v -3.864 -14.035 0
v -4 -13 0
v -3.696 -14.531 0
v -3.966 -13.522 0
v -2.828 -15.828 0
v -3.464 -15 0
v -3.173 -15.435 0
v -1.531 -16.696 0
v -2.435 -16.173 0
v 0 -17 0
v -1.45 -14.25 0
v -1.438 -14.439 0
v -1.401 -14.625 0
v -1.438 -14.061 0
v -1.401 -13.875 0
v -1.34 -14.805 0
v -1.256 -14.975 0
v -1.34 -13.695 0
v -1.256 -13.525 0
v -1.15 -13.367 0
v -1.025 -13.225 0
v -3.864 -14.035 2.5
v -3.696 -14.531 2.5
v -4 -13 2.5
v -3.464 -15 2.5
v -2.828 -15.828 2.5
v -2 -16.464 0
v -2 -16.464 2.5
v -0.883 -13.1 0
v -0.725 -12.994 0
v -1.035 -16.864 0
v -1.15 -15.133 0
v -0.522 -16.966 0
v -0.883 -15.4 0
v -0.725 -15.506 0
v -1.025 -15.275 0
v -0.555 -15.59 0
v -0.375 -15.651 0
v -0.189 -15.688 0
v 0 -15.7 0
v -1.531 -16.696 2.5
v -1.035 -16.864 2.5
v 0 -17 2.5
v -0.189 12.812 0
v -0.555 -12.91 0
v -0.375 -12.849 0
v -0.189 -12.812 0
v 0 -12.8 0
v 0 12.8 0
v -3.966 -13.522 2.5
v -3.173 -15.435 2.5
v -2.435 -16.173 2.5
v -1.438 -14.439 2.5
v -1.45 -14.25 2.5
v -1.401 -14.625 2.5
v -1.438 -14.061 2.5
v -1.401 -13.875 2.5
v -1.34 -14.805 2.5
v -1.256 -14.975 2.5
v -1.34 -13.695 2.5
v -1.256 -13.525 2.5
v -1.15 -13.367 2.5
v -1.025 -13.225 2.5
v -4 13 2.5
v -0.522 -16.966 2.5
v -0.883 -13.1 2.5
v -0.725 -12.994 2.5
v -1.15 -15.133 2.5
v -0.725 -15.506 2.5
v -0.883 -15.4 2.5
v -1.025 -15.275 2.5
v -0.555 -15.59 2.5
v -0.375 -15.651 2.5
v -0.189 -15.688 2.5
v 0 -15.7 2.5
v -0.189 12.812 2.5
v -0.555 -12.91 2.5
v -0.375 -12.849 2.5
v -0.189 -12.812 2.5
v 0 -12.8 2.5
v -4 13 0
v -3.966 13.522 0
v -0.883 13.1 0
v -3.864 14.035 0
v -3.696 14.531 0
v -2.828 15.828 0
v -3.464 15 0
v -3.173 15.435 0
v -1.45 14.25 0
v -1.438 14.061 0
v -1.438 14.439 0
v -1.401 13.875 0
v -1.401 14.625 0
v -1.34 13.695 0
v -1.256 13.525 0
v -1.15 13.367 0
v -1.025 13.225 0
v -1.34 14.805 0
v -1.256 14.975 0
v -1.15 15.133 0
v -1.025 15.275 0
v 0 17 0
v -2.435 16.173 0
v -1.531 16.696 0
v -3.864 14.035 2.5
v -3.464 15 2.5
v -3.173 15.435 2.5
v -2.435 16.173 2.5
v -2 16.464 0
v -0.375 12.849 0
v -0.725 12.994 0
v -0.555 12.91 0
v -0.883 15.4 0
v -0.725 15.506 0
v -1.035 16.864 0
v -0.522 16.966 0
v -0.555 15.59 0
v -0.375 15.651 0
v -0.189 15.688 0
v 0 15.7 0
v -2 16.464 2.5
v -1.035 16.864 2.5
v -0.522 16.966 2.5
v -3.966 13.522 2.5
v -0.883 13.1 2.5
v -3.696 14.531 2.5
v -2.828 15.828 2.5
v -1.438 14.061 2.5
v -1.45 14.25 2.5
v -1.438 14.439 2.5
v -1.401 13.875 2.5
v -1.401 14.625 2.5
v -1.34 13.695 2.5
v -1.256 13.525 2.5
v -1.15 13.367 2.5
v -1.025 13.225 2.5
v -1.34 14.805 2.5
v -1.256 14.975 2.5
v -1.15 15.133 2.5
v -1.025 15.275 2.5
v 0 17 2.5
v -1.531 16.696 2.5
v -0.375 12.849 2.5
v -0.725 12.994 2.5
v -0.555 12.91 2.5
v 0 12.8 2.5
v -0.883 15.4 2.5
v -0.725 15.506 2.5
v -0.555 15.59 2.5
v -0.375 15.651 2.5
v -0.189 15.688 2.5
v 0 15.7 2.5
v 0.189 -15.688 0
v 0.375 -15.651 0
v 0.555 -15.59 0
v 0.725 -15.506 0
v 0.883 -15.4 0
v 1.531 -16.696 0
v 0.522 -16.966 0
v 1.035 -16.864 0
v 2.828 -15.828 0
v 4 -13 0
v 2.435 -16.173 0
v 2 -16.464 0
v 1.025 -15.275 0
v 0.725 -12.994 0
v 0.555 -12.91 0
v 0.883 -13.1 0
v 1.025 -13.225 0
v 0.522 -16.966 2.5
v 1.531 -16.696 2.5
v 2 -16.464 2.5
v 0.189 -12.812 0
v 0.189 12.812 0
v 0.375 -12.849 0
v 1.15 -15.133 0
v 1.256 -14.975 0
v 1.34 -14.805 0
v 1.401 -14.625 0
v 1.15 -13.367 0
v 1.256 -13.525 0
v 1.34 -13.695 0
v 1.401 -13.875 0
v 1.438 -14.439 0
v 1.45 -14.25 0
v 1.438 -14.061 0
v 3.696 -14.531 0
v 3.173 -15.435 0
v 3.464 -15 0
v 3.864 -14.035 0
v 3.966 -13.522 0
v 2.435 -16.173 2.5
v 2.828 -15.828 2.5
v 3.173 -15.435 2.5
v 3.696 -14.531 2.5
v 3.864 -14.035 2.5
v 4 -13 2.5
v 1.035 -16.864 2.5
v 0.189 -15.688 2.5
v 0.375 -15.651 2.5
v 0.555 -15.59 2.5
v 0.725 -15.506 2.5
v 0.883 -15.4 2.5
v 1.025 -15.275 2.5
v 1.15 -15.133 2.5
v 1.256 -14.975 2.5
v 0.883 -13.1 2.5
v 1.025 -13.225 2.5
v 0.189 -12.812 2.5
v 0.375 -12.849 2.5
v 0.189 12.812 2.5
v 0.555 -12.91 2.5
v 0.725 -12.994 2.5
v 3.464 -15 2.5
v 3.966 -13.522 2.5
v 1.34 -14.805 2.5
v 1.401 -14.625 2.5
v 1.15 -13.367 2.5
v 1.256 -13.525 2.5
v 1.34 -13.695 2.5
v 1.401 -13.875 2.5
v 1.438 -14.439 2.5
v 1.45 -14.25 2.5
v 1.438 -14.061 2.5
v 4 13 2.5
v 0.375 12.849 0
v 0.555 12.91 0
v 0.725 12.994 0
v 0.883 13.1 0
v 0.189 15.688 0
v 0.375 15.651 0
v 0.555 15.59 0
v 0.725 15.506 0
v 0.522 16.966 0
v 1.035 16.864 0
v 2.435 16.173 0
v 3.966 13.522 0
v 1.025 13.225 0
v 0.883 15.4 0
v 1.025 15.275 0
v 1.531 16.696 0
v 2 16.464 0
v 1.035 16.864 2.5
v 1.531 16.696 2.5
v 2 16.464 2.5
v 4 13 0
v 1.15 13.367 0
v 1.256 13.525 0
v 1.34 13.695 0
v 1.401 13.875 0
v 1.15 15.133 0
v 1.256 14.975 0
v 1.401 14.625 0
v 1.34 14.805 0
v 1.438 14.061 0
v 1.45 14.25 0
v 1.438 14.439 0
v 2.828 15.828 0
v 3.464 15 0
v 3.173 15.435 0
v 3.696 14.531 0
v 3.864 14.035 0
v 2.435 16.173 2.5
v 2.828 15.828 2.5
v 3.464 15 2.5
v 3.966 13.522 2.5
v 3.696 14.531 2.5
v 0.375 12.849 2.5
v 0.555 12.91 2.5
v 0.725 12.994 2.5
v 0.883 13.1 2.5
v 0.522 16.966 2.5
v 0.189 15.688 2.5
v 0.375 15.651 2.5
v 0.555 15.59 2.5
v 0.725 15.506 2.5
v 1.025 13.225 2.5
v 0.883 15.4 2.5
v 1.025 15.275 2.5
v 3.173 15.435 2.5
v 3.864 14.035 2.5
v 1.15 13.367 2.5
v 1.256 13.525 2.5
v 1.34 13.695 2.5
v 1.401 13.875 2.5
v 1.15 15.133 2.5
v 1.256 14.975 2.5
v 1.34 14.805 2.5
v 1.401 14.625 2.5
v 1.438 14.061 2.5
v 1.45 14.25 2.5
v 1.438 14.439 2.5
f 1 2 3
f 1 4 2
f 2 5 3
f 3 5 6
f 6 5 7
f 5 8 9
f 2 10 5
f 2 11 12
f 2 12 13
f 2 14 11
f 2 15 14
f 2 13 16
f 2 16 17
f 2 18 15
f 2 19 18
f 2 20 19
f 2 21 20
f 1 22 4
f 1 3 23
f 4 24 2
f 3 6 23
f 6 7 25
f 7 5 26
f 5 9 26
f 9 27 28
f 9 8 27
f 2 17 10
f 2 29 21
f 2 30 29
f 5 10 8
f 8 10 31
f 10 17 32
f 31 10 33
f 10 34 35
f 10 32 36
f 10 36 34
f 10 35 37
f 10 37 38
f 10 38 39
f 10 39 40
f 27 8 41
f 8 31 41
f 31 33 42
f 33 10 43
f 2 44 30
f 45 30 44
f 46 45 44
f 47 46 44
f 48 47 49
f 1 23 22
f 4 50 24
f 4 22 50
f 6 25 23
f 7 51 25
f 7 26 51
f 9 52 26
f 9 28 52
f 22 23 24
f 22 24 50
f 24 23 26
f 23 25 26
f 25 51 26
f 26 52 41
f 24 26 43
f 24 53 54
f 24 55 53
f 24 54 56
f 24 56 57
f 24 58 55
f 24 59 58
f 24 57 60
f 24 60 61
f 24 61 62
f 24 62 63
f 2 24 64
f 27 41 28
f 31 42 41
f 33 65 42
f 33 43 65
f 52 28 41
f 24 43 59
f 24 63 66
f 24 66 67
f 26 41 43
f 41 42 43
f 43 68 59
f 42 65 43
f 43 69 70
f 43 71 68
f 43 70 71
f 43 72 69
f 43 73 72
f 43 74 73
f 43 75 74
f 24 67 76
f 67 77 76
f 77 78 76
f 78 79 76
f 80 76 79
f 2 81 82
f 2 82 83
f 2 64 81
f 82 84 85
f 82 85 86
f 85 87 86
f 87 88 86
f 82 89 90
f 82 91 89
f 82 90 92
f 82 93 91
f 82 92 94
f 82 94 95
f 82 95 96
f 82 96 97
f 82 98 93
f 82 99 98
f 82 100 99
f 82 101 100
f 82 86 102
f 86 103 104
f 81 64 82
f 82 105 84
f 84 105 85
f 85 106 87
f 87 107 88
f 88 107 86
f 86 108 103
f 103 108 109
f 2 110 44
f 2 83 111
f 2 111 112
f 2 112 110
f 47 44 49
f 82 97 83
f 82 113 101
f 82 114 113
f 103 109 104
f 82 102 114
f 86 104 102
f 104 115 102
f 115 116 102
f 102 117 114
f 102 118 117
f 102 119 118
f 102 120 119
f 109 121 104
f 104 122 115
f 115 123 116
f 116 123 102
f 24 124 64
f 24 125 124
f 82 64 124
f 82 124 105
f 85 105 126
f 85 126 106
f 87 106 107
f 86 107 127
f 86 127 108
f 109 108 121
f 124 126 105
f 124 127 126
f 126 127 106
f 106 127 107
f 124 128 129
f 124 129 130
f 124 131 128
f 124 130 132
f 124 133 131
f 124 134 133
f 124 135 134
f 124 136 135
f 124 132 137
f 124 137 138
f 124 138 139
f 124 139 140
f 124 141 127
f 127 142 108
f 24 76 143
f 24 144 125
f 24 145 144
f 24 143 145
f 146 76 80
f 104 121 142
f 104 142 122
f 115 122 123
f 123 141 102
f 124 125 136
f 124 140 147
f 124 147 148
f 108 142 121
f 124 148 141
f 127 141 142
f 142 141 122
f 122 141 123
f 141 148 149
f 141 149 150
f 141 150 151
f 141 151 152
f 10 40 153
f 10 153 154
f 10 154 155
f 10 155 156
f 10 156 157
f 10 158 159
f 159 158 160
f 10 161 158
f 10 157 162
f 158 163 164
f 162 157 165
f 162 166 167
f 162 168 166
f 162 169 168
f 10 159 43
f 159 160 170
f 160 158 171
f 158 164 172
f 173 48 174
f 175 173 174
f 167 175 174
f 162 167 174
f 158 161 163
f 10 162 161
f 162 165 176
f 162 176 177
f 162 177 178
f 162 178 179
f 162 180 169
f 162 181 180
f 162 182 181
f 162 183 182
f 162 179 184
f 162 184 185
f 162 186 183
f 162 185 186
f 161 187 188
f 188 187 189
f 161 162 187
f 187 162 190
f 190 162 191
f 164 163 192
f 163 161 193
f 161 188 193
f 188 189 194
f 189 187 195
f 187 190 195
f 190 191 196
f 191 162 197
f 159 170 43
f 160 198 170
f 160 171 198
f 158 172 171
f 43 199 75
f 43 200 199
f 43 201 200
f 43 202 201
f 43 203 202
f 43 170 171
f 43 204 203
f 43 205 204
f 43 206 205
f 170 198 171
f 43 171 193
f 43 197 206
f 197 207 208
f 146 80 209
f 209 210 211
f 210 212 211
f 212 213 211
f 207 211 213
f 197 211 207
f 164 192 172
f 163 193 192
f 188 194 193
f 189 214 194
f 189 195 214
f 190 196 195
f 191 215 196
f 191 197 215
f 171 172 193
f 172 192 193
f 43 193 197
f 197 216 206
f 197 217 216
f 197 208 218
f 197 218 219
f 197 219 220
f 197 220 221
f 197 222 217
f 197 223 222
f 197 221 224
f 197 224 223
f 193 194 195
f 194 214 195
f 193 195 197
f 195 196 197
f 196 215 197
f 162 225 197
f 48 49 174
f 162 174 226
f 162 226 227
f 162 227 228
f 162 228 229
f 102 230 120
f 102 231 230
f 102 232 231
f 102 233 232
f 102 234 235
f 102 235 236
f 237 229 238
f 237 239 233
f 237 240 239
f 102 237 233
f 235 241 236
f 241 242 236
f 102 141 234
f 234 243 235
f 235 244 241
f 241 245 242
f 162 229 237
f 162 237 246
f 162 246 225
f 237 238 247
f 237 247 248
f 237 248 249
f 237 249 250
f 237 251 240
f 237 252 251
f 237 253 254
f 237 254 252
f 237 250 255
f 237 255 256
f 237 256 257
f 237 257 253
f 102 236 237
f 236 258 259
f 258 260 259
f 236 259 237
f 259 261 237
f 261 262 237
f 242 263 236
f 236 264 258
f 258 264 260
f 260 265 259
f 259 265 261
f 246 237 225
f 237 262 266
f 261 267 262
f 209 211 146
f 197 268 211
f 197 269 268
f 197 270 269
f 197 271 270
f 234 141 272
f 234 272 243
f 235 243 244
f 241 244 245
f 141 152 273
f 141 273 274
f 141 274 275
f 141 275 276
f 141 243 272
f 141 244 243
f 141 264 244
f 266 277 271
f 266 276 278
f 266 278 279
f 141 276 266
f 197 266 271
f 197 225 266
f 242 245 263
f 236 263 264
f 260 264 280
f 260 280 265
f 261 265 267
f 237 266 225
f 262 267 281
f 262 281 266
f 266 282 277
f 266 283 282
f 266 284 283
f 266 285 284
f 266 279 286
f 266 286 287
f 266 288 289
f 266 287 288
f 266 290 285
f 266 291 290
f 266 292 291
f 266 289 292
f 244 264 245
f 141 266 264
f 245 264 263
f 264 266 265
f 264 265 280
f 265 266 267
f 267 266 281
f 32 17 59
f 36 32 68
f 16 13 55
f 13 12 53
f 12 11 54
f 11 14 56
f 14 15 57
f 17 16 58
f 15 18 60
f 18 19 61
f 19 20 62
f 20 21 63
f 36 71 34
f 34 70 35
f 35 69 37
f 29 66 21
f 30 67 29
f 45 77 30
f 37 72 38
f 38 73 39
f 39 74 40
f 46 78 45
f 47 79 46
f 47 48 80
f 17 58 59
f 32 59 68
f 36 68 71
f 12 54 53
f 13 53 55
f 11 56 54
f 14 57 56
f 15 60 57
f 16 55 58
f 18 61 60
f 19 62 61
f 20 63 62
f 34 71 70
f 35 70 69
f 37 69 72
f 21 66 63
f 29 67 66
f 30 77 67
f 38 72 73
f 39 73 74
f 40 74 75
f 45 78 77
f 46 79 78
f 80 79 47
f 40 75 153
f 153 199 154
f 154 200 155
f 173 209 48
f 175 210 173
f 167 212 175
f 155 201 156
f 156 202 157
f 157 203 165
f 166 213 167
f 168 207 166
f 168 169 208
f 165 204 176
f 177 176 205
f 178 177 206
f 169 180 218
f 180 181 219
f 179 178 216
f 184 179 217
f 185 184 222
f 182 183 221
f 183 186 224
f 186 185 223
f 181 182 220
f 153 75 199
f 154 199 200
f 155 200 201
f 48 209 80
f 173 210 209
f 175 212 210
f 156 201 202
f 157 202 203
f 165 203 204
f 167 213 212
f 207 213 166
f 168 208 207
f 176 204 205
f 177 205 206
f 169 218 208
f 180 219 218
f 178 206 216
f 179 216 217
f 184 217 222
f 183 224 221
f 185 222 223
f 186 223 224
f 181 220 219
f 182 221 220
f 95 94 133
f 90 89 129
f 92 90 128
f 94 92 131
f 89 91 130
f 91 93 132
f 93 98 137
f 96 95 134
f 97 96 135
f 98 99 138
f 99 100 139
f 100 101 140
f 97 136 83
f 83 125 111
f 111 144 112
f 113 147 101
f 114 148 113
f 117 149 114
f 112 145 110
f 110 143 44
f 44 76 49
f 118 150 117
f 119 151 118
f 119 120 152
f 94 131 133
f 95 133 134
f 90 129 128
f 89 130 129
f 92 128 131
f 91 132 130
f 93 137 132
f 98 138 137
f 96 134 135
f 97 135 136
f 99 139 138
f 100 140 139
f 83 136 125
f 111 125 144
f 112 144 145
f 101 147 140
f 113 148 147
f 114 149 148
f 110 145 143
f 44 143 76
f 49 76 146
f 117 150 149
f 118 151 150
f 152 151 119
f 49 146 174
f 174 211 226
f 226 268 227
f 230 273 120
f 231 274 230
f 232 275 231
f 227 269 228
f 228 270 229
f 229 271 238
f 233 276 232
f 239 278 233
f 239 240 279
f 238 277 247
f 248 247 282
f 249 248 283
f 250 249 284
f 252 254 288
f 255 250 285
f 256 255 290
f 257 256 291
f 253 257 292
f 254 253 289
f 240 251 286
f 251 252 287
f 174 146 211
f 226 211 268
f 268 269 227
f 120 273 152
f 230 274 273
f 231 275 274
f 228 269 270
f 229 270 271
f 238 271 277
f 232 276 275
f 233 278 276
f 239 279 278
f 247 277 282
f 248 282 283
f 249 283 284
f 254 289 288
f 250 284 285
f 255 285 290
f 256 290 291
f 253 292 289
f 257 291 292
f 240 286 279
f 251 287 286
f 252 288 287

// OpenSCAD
// =============================================================================
// V6 servo retention strap — screws over the servo tail (print 4+ per robot).
// =============================================================================
// plate, 2x Ø2.9 (M2.5 self-tap clearance) holes at ±14.25,
// matching strap_pilot_neg() in leg_v6_common.scad. Sits on the pocket rims
// (rim top = servo body top): clamps the body down into the pocket.
$fn = 48;
difference() {
    hull() for (sy = [-1, 1])
        translate([0, sy*13, 0]) cylinder(d = 8, h = 2.5);
    for (sy = [-1, 1])
        translate([0, sy*14.25, -0.1]) cylinder(d = 2.9, h = 2.8);
}
